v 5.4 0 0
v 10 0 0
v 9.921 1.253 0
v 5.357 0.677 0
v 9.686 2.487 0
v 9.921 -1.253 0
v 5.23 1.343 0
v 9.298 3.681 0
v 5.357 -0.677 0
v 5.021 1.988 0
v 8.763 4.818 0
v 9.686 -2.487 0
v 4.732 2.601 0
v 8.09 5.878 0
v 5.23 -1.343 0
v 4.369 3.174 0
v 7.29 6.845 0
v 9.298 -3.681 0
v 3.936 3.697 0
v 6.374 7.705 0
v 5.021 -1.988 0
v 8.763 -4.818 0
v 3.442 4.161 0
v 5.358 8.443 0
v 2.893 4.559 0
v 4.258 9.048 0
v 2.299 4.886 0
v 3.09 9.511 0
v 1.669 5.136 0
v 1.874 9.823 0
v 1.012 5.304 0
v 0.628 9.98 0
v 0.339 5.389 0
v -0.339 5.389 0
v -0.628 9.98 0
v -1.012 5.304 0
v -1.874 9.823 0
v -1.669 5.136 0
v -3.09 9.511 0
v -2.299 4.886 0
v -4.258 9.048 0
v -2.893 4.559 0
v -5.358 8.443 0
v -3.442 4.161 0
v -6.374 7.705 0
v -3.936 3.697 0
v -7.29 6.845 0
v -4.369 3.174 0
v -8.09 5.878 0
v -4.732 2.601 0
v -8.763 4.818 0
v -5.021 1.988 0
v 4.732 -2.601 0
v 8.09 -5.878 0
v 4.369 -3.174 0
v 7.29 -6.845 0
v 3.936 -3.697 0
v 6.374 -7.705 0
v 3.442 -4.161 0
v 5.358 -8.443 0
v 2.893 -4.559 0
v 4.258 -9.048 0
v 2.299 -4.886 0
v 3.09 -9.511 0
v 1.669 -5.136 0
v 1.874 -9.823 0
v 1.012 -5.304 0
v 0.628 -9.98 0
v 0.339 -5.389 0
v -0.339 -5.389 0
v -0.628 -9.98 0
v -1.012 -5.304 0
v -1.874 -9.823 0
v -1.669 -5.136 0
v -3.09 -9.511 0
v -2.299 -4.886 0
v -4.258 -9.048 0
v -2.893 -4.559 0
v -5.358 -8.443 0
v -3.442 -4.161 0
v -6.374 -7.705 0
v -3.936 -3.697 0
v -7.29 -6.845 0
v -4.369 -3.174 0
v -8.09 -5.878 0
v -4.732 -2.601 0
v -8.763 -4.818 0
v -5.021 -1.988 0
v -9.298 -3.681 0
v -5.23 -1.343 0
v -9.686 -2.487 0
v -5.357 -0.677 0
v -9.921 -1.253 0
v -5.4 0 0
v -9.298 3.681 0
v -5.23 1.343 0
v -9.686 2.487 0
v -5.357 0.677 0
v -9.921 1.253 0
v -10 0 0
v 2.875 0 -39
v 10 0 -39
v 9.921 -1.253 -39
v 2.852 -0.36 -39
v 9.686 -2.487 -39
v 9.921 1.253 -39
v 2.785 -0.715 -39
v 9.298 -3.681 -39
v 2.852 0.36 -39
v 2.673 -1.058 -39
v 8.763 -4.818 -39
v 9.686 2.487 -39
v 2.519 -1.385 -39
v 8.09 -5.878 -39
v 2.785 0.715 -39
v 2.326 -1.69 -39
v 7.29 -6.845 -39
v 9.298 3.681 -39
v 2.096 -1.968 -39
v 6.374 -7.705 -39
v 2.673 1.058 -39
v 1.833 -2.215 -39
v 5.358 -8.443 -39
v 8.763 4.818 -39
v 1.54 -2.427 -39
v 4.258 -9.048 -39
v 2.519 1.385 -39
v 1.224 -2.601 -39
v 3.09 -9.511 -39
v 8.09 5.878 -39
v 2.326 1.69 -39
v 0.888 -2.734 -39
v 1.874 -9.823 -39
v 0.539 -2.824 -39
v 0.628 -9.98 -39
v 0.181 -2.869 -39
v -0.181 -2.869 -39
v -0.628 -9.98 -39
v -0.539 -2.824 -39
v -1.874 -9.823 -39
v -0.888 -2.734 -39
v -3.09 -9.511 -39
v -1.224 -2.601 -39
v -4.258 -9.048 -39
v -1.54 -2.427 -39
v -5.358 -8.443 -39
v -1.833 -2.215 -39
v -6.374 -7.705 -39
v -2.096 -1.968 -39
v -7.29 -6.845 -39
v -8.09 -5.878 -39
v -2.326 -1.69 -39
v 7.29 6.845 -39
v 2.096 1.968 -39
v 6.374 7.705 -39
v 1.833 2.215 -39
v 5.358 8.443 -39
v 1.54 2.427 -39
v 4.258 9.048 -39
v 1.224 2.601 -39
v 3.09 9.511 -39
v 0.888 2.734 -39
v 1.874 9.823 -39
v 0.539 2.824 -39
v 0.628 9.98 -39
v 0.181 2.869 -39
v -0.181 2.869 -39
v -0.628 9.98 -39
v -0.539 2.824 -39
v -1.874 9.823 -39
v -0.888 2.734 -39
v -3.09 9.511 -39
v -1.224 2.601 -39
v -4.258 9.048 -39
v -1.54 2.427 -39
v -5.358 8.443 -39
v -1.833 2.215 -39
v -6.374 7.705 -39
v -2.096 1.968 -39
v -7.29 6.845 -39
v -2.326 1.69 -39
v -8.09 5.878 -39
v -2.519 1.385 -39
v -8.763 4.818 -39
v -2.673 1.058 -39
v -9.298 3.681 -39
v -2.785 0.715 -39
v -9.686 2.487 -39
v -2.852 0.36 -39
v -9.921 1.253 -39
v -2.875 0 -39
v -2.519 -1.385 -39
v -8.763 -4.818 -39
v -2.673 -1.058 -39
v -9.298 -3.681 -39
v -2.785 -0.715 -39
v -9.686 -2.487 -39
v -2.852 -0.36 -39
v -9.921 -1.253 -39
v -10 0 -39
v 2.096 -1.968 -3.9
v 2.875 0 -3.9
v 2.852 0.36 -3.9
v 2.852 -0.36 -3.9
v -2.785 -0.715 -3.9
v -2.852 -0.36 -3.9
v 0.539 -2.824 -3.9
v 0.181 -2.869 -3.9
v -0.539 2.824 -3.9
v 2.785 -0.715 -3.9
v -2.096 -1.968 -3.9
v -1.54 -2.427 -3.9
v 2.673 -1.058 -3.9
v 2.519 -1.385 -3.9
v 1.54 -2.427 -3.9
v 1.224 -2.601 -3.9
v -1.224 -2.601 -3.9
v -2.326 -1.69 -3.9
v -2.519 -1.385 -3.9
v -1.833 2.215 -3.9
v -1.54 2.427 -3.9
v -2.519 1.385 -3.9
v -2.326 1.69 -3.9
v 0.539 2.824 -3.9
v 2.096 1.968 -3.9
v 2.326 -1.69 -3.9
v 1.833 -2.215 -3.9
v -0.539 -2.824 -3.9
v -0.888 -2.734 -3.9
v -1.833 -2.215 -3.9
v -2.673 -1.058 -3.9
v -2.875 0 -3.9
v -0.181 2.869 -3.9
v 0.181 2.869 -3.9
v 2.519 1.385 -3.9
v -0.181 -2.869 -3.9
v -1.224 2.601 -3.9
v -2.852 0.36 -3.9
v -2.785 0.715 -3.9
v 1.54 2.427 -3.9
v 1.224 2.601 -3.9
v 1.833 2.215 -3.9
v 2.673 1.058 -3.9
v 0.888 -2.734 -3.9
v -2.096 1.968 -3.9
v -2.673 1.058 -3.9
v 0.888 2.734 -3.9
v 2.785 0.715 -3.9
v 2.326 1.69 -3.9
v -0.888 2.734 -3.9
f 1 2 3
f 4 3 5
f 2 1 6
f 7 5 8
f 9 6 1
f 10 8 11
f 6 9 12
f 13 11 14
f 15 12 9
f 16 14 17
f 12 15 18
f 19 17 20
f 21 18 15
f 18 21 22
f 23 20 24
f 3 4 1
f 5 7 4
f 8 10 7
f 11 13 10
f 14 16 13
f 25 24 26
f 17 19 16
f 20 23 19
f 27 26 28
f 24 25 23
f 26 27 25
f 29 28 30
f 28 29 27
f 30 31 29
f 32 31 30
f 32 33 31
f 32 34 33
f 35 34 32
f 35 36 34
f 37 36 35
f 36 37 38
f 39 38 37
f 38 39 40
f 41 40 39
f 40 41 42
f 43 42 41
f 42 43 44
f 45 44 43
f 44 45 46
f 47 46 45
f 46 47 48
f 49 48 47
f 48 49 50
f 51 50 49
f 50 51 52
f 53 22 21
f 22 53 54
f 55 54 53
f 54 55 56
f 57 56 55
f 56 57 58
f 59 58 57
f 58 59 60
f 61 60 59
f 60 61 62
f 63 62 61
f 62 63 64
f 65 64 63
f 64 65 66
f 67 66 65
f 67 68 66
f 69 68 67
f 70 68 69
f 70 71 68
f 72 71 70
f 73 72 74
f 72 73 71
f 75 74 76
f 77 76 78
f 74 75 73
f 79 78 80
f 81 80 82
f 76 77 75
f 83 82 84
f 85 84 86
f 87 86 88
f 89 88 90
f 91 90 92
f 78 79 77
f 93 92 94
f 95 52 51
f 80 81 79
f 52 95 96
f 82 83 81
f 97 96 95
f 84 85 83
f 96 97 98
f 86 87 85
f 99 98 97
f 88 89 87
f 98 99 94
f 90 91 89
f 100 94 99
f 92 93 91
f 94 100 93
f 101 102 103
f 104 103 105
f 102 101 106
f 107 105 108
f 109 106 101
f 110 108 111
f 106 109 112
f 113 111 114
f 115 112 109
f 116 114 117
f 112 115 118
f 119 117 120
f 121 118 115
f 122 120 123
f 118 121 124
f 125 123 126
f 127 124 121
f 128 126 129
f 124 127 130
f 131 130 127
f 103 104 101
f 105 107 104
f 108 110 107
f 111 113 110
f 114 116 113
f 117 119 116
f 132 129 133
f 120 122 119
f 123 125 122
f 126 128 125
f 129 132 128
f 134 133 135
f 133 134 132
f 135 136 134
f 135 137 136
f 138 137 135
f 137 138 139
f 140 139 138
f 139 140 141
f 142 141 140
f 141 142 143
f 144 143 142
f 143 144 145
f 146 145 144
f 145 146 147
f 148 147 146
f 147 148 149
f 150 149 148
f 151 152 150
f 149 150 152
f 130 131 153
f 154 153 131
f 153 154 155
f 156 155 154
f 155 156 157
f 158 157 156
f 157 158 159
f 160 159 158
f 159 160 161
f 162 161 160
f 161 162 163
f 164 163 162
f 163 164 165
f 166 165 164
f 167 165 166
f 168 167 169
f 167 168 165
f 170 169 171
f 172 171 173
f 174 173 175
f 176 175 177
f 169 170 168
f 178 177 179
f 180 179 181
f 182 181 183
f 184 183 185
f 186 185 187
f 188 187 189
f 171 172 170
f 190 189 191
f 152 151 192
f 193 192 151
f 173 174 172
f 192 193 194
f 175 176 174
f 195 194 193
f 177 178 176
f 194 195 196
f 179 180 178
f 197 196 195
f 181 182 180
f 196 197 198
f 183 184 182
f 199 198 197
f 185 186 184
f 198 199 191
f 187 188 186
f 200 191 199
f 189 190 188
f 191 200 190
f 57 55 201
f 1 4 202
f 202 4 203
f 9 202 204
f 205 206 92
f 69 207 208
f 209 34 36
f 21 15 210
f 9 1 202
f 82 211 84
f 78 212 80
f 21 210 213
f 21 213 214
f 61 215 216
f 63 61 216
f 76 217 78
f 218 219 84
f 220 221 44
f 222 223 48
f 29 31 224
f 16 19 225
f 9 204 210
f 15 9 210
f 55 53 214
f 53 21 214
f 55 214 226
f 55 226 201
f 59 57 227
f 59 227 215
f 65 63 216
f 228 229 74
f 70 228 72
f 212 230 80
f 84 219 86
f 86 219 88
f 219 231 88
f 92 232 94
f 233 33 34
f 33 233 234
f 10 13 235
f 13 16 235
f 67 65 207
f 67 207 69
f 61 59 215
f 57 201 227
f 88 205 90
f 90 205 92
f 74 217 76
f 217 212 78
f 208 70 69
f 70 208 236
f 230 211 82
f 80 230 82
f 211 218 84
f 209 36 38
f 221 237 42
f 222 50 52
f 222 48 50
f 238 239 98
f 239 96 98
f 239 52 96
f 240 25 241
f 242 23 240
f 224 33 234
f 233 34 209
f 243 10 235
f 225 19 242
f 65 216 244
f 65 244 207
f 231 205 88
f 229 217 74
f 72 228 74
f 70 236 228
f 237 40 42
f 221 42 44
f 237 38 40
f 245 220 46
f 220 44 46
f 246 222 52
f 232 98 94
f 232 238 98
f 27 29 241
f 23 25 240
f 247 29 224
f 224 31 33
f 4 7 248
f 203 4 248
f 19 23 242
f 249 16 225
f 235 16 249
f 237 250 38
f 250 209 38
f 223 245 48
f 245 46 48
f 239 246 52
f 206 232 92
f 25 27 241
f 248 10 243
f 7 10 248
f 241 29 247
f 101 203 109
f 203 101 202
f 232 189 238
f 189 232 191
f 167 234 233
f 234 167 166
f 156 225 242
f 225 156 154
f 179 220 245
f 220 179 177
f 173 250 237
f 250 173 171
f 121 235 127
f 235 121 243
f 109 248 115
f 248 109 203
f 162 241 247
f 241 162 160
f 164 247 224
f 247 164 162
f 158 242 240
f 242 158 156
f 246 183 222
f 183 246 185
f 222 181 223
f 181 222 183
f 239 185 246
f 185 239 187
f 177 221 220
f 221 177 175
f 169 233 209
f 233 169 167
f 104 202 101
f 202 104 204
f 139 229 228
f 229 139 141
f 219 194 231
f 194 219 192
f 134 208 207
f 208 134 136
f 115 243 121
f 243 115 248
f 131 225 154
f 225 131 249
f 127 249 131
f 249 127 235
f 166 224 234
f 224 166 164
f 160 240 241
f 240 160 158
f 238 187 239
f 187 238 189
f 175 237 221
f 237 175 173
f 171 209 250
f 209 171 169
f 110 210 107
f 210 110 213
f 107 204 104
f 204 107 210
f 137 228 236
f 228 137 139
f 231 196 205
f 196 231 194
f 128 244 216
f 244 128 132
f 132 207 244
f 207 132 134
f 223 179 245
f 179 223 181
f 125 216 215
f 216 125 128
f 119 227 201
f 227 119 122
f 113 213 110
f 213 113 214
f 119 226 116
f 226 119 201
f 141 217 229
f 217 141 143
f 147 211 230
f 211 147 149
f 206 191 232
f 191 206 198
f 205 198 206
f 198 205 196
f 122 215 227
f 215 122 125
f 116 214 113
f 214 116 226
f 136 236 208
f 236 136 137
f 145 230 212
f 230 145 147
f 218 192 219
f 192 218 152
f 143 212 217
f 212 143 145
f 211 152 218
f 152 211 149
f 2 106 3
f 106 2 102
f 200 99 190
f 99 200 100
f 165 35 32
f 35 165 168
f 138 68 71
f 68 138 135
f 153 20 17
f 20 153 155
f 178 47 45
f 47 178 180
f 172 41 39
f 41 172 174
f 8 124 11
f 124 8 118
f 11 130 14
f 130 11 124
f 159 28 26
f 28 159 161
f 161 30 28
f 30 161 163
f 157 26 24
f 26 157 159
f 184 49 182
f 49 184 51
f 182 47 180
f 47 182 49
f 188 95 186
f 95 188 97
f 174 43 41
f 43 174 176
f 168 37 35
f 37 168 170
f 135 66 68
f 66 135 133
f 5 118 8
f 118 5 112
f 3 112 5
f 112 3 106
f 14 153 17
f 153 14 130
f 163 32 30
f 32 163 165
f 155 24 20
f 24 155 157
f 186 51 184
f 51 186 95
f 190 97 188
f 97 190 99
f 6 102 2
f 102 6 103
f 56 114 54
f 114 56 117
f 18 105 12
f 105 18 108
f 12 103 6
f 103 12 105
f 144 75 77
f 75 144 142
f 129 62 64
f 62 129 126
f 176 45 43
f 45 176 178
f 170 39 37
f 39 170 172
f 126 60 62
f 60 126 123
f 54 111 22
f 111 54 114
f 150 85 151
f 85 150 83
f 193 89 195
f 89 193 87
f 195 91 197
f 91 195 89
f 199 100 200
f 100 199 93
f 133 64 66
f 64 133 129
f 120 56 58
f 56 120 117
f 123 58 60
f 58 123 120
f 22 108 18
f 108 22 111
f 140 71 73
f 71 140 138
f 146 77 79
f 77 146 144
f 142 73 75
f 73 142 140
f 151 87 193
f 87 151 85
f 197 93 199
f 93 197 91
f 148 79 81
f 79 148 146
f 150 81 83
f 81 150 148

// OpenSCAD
$fn = 50;


difference() {
	union() {
		translate(v = [0, 0, -39.0000000000]) {
			cylinder(h = 39, r = 10.0000000000);
		}
		cylinder(h = 0, r = 16.0000000000);
	}
	union() {
		translate(v = [0, 0, 0]) {
			rotate(a = [0, 0, 0]) {
				difference() {
					union() {
						#translate(v = [0, 0, -39.0000000000]) {
							cylinder(h = 39, r = 2.6000000000);
						}
						#translate(v = [0, 0, -3.9000000000]) {
							cylinder(h = 3.9000000000, r = 10.0000000000, r1 = 2.8750000000, r2 = 5.4000000000);
						}
						#translate(v = [0, 0, -39.0000000000]) {
							cylinder(h = 39, r = 2.8750000000);
						}
						#translate(v = [0, 0, -39.0000000000]) {
							cylinder(h = 39, r = 2.6000000000);
						}
					}
					union();
				}
			}
		}
	}
}
